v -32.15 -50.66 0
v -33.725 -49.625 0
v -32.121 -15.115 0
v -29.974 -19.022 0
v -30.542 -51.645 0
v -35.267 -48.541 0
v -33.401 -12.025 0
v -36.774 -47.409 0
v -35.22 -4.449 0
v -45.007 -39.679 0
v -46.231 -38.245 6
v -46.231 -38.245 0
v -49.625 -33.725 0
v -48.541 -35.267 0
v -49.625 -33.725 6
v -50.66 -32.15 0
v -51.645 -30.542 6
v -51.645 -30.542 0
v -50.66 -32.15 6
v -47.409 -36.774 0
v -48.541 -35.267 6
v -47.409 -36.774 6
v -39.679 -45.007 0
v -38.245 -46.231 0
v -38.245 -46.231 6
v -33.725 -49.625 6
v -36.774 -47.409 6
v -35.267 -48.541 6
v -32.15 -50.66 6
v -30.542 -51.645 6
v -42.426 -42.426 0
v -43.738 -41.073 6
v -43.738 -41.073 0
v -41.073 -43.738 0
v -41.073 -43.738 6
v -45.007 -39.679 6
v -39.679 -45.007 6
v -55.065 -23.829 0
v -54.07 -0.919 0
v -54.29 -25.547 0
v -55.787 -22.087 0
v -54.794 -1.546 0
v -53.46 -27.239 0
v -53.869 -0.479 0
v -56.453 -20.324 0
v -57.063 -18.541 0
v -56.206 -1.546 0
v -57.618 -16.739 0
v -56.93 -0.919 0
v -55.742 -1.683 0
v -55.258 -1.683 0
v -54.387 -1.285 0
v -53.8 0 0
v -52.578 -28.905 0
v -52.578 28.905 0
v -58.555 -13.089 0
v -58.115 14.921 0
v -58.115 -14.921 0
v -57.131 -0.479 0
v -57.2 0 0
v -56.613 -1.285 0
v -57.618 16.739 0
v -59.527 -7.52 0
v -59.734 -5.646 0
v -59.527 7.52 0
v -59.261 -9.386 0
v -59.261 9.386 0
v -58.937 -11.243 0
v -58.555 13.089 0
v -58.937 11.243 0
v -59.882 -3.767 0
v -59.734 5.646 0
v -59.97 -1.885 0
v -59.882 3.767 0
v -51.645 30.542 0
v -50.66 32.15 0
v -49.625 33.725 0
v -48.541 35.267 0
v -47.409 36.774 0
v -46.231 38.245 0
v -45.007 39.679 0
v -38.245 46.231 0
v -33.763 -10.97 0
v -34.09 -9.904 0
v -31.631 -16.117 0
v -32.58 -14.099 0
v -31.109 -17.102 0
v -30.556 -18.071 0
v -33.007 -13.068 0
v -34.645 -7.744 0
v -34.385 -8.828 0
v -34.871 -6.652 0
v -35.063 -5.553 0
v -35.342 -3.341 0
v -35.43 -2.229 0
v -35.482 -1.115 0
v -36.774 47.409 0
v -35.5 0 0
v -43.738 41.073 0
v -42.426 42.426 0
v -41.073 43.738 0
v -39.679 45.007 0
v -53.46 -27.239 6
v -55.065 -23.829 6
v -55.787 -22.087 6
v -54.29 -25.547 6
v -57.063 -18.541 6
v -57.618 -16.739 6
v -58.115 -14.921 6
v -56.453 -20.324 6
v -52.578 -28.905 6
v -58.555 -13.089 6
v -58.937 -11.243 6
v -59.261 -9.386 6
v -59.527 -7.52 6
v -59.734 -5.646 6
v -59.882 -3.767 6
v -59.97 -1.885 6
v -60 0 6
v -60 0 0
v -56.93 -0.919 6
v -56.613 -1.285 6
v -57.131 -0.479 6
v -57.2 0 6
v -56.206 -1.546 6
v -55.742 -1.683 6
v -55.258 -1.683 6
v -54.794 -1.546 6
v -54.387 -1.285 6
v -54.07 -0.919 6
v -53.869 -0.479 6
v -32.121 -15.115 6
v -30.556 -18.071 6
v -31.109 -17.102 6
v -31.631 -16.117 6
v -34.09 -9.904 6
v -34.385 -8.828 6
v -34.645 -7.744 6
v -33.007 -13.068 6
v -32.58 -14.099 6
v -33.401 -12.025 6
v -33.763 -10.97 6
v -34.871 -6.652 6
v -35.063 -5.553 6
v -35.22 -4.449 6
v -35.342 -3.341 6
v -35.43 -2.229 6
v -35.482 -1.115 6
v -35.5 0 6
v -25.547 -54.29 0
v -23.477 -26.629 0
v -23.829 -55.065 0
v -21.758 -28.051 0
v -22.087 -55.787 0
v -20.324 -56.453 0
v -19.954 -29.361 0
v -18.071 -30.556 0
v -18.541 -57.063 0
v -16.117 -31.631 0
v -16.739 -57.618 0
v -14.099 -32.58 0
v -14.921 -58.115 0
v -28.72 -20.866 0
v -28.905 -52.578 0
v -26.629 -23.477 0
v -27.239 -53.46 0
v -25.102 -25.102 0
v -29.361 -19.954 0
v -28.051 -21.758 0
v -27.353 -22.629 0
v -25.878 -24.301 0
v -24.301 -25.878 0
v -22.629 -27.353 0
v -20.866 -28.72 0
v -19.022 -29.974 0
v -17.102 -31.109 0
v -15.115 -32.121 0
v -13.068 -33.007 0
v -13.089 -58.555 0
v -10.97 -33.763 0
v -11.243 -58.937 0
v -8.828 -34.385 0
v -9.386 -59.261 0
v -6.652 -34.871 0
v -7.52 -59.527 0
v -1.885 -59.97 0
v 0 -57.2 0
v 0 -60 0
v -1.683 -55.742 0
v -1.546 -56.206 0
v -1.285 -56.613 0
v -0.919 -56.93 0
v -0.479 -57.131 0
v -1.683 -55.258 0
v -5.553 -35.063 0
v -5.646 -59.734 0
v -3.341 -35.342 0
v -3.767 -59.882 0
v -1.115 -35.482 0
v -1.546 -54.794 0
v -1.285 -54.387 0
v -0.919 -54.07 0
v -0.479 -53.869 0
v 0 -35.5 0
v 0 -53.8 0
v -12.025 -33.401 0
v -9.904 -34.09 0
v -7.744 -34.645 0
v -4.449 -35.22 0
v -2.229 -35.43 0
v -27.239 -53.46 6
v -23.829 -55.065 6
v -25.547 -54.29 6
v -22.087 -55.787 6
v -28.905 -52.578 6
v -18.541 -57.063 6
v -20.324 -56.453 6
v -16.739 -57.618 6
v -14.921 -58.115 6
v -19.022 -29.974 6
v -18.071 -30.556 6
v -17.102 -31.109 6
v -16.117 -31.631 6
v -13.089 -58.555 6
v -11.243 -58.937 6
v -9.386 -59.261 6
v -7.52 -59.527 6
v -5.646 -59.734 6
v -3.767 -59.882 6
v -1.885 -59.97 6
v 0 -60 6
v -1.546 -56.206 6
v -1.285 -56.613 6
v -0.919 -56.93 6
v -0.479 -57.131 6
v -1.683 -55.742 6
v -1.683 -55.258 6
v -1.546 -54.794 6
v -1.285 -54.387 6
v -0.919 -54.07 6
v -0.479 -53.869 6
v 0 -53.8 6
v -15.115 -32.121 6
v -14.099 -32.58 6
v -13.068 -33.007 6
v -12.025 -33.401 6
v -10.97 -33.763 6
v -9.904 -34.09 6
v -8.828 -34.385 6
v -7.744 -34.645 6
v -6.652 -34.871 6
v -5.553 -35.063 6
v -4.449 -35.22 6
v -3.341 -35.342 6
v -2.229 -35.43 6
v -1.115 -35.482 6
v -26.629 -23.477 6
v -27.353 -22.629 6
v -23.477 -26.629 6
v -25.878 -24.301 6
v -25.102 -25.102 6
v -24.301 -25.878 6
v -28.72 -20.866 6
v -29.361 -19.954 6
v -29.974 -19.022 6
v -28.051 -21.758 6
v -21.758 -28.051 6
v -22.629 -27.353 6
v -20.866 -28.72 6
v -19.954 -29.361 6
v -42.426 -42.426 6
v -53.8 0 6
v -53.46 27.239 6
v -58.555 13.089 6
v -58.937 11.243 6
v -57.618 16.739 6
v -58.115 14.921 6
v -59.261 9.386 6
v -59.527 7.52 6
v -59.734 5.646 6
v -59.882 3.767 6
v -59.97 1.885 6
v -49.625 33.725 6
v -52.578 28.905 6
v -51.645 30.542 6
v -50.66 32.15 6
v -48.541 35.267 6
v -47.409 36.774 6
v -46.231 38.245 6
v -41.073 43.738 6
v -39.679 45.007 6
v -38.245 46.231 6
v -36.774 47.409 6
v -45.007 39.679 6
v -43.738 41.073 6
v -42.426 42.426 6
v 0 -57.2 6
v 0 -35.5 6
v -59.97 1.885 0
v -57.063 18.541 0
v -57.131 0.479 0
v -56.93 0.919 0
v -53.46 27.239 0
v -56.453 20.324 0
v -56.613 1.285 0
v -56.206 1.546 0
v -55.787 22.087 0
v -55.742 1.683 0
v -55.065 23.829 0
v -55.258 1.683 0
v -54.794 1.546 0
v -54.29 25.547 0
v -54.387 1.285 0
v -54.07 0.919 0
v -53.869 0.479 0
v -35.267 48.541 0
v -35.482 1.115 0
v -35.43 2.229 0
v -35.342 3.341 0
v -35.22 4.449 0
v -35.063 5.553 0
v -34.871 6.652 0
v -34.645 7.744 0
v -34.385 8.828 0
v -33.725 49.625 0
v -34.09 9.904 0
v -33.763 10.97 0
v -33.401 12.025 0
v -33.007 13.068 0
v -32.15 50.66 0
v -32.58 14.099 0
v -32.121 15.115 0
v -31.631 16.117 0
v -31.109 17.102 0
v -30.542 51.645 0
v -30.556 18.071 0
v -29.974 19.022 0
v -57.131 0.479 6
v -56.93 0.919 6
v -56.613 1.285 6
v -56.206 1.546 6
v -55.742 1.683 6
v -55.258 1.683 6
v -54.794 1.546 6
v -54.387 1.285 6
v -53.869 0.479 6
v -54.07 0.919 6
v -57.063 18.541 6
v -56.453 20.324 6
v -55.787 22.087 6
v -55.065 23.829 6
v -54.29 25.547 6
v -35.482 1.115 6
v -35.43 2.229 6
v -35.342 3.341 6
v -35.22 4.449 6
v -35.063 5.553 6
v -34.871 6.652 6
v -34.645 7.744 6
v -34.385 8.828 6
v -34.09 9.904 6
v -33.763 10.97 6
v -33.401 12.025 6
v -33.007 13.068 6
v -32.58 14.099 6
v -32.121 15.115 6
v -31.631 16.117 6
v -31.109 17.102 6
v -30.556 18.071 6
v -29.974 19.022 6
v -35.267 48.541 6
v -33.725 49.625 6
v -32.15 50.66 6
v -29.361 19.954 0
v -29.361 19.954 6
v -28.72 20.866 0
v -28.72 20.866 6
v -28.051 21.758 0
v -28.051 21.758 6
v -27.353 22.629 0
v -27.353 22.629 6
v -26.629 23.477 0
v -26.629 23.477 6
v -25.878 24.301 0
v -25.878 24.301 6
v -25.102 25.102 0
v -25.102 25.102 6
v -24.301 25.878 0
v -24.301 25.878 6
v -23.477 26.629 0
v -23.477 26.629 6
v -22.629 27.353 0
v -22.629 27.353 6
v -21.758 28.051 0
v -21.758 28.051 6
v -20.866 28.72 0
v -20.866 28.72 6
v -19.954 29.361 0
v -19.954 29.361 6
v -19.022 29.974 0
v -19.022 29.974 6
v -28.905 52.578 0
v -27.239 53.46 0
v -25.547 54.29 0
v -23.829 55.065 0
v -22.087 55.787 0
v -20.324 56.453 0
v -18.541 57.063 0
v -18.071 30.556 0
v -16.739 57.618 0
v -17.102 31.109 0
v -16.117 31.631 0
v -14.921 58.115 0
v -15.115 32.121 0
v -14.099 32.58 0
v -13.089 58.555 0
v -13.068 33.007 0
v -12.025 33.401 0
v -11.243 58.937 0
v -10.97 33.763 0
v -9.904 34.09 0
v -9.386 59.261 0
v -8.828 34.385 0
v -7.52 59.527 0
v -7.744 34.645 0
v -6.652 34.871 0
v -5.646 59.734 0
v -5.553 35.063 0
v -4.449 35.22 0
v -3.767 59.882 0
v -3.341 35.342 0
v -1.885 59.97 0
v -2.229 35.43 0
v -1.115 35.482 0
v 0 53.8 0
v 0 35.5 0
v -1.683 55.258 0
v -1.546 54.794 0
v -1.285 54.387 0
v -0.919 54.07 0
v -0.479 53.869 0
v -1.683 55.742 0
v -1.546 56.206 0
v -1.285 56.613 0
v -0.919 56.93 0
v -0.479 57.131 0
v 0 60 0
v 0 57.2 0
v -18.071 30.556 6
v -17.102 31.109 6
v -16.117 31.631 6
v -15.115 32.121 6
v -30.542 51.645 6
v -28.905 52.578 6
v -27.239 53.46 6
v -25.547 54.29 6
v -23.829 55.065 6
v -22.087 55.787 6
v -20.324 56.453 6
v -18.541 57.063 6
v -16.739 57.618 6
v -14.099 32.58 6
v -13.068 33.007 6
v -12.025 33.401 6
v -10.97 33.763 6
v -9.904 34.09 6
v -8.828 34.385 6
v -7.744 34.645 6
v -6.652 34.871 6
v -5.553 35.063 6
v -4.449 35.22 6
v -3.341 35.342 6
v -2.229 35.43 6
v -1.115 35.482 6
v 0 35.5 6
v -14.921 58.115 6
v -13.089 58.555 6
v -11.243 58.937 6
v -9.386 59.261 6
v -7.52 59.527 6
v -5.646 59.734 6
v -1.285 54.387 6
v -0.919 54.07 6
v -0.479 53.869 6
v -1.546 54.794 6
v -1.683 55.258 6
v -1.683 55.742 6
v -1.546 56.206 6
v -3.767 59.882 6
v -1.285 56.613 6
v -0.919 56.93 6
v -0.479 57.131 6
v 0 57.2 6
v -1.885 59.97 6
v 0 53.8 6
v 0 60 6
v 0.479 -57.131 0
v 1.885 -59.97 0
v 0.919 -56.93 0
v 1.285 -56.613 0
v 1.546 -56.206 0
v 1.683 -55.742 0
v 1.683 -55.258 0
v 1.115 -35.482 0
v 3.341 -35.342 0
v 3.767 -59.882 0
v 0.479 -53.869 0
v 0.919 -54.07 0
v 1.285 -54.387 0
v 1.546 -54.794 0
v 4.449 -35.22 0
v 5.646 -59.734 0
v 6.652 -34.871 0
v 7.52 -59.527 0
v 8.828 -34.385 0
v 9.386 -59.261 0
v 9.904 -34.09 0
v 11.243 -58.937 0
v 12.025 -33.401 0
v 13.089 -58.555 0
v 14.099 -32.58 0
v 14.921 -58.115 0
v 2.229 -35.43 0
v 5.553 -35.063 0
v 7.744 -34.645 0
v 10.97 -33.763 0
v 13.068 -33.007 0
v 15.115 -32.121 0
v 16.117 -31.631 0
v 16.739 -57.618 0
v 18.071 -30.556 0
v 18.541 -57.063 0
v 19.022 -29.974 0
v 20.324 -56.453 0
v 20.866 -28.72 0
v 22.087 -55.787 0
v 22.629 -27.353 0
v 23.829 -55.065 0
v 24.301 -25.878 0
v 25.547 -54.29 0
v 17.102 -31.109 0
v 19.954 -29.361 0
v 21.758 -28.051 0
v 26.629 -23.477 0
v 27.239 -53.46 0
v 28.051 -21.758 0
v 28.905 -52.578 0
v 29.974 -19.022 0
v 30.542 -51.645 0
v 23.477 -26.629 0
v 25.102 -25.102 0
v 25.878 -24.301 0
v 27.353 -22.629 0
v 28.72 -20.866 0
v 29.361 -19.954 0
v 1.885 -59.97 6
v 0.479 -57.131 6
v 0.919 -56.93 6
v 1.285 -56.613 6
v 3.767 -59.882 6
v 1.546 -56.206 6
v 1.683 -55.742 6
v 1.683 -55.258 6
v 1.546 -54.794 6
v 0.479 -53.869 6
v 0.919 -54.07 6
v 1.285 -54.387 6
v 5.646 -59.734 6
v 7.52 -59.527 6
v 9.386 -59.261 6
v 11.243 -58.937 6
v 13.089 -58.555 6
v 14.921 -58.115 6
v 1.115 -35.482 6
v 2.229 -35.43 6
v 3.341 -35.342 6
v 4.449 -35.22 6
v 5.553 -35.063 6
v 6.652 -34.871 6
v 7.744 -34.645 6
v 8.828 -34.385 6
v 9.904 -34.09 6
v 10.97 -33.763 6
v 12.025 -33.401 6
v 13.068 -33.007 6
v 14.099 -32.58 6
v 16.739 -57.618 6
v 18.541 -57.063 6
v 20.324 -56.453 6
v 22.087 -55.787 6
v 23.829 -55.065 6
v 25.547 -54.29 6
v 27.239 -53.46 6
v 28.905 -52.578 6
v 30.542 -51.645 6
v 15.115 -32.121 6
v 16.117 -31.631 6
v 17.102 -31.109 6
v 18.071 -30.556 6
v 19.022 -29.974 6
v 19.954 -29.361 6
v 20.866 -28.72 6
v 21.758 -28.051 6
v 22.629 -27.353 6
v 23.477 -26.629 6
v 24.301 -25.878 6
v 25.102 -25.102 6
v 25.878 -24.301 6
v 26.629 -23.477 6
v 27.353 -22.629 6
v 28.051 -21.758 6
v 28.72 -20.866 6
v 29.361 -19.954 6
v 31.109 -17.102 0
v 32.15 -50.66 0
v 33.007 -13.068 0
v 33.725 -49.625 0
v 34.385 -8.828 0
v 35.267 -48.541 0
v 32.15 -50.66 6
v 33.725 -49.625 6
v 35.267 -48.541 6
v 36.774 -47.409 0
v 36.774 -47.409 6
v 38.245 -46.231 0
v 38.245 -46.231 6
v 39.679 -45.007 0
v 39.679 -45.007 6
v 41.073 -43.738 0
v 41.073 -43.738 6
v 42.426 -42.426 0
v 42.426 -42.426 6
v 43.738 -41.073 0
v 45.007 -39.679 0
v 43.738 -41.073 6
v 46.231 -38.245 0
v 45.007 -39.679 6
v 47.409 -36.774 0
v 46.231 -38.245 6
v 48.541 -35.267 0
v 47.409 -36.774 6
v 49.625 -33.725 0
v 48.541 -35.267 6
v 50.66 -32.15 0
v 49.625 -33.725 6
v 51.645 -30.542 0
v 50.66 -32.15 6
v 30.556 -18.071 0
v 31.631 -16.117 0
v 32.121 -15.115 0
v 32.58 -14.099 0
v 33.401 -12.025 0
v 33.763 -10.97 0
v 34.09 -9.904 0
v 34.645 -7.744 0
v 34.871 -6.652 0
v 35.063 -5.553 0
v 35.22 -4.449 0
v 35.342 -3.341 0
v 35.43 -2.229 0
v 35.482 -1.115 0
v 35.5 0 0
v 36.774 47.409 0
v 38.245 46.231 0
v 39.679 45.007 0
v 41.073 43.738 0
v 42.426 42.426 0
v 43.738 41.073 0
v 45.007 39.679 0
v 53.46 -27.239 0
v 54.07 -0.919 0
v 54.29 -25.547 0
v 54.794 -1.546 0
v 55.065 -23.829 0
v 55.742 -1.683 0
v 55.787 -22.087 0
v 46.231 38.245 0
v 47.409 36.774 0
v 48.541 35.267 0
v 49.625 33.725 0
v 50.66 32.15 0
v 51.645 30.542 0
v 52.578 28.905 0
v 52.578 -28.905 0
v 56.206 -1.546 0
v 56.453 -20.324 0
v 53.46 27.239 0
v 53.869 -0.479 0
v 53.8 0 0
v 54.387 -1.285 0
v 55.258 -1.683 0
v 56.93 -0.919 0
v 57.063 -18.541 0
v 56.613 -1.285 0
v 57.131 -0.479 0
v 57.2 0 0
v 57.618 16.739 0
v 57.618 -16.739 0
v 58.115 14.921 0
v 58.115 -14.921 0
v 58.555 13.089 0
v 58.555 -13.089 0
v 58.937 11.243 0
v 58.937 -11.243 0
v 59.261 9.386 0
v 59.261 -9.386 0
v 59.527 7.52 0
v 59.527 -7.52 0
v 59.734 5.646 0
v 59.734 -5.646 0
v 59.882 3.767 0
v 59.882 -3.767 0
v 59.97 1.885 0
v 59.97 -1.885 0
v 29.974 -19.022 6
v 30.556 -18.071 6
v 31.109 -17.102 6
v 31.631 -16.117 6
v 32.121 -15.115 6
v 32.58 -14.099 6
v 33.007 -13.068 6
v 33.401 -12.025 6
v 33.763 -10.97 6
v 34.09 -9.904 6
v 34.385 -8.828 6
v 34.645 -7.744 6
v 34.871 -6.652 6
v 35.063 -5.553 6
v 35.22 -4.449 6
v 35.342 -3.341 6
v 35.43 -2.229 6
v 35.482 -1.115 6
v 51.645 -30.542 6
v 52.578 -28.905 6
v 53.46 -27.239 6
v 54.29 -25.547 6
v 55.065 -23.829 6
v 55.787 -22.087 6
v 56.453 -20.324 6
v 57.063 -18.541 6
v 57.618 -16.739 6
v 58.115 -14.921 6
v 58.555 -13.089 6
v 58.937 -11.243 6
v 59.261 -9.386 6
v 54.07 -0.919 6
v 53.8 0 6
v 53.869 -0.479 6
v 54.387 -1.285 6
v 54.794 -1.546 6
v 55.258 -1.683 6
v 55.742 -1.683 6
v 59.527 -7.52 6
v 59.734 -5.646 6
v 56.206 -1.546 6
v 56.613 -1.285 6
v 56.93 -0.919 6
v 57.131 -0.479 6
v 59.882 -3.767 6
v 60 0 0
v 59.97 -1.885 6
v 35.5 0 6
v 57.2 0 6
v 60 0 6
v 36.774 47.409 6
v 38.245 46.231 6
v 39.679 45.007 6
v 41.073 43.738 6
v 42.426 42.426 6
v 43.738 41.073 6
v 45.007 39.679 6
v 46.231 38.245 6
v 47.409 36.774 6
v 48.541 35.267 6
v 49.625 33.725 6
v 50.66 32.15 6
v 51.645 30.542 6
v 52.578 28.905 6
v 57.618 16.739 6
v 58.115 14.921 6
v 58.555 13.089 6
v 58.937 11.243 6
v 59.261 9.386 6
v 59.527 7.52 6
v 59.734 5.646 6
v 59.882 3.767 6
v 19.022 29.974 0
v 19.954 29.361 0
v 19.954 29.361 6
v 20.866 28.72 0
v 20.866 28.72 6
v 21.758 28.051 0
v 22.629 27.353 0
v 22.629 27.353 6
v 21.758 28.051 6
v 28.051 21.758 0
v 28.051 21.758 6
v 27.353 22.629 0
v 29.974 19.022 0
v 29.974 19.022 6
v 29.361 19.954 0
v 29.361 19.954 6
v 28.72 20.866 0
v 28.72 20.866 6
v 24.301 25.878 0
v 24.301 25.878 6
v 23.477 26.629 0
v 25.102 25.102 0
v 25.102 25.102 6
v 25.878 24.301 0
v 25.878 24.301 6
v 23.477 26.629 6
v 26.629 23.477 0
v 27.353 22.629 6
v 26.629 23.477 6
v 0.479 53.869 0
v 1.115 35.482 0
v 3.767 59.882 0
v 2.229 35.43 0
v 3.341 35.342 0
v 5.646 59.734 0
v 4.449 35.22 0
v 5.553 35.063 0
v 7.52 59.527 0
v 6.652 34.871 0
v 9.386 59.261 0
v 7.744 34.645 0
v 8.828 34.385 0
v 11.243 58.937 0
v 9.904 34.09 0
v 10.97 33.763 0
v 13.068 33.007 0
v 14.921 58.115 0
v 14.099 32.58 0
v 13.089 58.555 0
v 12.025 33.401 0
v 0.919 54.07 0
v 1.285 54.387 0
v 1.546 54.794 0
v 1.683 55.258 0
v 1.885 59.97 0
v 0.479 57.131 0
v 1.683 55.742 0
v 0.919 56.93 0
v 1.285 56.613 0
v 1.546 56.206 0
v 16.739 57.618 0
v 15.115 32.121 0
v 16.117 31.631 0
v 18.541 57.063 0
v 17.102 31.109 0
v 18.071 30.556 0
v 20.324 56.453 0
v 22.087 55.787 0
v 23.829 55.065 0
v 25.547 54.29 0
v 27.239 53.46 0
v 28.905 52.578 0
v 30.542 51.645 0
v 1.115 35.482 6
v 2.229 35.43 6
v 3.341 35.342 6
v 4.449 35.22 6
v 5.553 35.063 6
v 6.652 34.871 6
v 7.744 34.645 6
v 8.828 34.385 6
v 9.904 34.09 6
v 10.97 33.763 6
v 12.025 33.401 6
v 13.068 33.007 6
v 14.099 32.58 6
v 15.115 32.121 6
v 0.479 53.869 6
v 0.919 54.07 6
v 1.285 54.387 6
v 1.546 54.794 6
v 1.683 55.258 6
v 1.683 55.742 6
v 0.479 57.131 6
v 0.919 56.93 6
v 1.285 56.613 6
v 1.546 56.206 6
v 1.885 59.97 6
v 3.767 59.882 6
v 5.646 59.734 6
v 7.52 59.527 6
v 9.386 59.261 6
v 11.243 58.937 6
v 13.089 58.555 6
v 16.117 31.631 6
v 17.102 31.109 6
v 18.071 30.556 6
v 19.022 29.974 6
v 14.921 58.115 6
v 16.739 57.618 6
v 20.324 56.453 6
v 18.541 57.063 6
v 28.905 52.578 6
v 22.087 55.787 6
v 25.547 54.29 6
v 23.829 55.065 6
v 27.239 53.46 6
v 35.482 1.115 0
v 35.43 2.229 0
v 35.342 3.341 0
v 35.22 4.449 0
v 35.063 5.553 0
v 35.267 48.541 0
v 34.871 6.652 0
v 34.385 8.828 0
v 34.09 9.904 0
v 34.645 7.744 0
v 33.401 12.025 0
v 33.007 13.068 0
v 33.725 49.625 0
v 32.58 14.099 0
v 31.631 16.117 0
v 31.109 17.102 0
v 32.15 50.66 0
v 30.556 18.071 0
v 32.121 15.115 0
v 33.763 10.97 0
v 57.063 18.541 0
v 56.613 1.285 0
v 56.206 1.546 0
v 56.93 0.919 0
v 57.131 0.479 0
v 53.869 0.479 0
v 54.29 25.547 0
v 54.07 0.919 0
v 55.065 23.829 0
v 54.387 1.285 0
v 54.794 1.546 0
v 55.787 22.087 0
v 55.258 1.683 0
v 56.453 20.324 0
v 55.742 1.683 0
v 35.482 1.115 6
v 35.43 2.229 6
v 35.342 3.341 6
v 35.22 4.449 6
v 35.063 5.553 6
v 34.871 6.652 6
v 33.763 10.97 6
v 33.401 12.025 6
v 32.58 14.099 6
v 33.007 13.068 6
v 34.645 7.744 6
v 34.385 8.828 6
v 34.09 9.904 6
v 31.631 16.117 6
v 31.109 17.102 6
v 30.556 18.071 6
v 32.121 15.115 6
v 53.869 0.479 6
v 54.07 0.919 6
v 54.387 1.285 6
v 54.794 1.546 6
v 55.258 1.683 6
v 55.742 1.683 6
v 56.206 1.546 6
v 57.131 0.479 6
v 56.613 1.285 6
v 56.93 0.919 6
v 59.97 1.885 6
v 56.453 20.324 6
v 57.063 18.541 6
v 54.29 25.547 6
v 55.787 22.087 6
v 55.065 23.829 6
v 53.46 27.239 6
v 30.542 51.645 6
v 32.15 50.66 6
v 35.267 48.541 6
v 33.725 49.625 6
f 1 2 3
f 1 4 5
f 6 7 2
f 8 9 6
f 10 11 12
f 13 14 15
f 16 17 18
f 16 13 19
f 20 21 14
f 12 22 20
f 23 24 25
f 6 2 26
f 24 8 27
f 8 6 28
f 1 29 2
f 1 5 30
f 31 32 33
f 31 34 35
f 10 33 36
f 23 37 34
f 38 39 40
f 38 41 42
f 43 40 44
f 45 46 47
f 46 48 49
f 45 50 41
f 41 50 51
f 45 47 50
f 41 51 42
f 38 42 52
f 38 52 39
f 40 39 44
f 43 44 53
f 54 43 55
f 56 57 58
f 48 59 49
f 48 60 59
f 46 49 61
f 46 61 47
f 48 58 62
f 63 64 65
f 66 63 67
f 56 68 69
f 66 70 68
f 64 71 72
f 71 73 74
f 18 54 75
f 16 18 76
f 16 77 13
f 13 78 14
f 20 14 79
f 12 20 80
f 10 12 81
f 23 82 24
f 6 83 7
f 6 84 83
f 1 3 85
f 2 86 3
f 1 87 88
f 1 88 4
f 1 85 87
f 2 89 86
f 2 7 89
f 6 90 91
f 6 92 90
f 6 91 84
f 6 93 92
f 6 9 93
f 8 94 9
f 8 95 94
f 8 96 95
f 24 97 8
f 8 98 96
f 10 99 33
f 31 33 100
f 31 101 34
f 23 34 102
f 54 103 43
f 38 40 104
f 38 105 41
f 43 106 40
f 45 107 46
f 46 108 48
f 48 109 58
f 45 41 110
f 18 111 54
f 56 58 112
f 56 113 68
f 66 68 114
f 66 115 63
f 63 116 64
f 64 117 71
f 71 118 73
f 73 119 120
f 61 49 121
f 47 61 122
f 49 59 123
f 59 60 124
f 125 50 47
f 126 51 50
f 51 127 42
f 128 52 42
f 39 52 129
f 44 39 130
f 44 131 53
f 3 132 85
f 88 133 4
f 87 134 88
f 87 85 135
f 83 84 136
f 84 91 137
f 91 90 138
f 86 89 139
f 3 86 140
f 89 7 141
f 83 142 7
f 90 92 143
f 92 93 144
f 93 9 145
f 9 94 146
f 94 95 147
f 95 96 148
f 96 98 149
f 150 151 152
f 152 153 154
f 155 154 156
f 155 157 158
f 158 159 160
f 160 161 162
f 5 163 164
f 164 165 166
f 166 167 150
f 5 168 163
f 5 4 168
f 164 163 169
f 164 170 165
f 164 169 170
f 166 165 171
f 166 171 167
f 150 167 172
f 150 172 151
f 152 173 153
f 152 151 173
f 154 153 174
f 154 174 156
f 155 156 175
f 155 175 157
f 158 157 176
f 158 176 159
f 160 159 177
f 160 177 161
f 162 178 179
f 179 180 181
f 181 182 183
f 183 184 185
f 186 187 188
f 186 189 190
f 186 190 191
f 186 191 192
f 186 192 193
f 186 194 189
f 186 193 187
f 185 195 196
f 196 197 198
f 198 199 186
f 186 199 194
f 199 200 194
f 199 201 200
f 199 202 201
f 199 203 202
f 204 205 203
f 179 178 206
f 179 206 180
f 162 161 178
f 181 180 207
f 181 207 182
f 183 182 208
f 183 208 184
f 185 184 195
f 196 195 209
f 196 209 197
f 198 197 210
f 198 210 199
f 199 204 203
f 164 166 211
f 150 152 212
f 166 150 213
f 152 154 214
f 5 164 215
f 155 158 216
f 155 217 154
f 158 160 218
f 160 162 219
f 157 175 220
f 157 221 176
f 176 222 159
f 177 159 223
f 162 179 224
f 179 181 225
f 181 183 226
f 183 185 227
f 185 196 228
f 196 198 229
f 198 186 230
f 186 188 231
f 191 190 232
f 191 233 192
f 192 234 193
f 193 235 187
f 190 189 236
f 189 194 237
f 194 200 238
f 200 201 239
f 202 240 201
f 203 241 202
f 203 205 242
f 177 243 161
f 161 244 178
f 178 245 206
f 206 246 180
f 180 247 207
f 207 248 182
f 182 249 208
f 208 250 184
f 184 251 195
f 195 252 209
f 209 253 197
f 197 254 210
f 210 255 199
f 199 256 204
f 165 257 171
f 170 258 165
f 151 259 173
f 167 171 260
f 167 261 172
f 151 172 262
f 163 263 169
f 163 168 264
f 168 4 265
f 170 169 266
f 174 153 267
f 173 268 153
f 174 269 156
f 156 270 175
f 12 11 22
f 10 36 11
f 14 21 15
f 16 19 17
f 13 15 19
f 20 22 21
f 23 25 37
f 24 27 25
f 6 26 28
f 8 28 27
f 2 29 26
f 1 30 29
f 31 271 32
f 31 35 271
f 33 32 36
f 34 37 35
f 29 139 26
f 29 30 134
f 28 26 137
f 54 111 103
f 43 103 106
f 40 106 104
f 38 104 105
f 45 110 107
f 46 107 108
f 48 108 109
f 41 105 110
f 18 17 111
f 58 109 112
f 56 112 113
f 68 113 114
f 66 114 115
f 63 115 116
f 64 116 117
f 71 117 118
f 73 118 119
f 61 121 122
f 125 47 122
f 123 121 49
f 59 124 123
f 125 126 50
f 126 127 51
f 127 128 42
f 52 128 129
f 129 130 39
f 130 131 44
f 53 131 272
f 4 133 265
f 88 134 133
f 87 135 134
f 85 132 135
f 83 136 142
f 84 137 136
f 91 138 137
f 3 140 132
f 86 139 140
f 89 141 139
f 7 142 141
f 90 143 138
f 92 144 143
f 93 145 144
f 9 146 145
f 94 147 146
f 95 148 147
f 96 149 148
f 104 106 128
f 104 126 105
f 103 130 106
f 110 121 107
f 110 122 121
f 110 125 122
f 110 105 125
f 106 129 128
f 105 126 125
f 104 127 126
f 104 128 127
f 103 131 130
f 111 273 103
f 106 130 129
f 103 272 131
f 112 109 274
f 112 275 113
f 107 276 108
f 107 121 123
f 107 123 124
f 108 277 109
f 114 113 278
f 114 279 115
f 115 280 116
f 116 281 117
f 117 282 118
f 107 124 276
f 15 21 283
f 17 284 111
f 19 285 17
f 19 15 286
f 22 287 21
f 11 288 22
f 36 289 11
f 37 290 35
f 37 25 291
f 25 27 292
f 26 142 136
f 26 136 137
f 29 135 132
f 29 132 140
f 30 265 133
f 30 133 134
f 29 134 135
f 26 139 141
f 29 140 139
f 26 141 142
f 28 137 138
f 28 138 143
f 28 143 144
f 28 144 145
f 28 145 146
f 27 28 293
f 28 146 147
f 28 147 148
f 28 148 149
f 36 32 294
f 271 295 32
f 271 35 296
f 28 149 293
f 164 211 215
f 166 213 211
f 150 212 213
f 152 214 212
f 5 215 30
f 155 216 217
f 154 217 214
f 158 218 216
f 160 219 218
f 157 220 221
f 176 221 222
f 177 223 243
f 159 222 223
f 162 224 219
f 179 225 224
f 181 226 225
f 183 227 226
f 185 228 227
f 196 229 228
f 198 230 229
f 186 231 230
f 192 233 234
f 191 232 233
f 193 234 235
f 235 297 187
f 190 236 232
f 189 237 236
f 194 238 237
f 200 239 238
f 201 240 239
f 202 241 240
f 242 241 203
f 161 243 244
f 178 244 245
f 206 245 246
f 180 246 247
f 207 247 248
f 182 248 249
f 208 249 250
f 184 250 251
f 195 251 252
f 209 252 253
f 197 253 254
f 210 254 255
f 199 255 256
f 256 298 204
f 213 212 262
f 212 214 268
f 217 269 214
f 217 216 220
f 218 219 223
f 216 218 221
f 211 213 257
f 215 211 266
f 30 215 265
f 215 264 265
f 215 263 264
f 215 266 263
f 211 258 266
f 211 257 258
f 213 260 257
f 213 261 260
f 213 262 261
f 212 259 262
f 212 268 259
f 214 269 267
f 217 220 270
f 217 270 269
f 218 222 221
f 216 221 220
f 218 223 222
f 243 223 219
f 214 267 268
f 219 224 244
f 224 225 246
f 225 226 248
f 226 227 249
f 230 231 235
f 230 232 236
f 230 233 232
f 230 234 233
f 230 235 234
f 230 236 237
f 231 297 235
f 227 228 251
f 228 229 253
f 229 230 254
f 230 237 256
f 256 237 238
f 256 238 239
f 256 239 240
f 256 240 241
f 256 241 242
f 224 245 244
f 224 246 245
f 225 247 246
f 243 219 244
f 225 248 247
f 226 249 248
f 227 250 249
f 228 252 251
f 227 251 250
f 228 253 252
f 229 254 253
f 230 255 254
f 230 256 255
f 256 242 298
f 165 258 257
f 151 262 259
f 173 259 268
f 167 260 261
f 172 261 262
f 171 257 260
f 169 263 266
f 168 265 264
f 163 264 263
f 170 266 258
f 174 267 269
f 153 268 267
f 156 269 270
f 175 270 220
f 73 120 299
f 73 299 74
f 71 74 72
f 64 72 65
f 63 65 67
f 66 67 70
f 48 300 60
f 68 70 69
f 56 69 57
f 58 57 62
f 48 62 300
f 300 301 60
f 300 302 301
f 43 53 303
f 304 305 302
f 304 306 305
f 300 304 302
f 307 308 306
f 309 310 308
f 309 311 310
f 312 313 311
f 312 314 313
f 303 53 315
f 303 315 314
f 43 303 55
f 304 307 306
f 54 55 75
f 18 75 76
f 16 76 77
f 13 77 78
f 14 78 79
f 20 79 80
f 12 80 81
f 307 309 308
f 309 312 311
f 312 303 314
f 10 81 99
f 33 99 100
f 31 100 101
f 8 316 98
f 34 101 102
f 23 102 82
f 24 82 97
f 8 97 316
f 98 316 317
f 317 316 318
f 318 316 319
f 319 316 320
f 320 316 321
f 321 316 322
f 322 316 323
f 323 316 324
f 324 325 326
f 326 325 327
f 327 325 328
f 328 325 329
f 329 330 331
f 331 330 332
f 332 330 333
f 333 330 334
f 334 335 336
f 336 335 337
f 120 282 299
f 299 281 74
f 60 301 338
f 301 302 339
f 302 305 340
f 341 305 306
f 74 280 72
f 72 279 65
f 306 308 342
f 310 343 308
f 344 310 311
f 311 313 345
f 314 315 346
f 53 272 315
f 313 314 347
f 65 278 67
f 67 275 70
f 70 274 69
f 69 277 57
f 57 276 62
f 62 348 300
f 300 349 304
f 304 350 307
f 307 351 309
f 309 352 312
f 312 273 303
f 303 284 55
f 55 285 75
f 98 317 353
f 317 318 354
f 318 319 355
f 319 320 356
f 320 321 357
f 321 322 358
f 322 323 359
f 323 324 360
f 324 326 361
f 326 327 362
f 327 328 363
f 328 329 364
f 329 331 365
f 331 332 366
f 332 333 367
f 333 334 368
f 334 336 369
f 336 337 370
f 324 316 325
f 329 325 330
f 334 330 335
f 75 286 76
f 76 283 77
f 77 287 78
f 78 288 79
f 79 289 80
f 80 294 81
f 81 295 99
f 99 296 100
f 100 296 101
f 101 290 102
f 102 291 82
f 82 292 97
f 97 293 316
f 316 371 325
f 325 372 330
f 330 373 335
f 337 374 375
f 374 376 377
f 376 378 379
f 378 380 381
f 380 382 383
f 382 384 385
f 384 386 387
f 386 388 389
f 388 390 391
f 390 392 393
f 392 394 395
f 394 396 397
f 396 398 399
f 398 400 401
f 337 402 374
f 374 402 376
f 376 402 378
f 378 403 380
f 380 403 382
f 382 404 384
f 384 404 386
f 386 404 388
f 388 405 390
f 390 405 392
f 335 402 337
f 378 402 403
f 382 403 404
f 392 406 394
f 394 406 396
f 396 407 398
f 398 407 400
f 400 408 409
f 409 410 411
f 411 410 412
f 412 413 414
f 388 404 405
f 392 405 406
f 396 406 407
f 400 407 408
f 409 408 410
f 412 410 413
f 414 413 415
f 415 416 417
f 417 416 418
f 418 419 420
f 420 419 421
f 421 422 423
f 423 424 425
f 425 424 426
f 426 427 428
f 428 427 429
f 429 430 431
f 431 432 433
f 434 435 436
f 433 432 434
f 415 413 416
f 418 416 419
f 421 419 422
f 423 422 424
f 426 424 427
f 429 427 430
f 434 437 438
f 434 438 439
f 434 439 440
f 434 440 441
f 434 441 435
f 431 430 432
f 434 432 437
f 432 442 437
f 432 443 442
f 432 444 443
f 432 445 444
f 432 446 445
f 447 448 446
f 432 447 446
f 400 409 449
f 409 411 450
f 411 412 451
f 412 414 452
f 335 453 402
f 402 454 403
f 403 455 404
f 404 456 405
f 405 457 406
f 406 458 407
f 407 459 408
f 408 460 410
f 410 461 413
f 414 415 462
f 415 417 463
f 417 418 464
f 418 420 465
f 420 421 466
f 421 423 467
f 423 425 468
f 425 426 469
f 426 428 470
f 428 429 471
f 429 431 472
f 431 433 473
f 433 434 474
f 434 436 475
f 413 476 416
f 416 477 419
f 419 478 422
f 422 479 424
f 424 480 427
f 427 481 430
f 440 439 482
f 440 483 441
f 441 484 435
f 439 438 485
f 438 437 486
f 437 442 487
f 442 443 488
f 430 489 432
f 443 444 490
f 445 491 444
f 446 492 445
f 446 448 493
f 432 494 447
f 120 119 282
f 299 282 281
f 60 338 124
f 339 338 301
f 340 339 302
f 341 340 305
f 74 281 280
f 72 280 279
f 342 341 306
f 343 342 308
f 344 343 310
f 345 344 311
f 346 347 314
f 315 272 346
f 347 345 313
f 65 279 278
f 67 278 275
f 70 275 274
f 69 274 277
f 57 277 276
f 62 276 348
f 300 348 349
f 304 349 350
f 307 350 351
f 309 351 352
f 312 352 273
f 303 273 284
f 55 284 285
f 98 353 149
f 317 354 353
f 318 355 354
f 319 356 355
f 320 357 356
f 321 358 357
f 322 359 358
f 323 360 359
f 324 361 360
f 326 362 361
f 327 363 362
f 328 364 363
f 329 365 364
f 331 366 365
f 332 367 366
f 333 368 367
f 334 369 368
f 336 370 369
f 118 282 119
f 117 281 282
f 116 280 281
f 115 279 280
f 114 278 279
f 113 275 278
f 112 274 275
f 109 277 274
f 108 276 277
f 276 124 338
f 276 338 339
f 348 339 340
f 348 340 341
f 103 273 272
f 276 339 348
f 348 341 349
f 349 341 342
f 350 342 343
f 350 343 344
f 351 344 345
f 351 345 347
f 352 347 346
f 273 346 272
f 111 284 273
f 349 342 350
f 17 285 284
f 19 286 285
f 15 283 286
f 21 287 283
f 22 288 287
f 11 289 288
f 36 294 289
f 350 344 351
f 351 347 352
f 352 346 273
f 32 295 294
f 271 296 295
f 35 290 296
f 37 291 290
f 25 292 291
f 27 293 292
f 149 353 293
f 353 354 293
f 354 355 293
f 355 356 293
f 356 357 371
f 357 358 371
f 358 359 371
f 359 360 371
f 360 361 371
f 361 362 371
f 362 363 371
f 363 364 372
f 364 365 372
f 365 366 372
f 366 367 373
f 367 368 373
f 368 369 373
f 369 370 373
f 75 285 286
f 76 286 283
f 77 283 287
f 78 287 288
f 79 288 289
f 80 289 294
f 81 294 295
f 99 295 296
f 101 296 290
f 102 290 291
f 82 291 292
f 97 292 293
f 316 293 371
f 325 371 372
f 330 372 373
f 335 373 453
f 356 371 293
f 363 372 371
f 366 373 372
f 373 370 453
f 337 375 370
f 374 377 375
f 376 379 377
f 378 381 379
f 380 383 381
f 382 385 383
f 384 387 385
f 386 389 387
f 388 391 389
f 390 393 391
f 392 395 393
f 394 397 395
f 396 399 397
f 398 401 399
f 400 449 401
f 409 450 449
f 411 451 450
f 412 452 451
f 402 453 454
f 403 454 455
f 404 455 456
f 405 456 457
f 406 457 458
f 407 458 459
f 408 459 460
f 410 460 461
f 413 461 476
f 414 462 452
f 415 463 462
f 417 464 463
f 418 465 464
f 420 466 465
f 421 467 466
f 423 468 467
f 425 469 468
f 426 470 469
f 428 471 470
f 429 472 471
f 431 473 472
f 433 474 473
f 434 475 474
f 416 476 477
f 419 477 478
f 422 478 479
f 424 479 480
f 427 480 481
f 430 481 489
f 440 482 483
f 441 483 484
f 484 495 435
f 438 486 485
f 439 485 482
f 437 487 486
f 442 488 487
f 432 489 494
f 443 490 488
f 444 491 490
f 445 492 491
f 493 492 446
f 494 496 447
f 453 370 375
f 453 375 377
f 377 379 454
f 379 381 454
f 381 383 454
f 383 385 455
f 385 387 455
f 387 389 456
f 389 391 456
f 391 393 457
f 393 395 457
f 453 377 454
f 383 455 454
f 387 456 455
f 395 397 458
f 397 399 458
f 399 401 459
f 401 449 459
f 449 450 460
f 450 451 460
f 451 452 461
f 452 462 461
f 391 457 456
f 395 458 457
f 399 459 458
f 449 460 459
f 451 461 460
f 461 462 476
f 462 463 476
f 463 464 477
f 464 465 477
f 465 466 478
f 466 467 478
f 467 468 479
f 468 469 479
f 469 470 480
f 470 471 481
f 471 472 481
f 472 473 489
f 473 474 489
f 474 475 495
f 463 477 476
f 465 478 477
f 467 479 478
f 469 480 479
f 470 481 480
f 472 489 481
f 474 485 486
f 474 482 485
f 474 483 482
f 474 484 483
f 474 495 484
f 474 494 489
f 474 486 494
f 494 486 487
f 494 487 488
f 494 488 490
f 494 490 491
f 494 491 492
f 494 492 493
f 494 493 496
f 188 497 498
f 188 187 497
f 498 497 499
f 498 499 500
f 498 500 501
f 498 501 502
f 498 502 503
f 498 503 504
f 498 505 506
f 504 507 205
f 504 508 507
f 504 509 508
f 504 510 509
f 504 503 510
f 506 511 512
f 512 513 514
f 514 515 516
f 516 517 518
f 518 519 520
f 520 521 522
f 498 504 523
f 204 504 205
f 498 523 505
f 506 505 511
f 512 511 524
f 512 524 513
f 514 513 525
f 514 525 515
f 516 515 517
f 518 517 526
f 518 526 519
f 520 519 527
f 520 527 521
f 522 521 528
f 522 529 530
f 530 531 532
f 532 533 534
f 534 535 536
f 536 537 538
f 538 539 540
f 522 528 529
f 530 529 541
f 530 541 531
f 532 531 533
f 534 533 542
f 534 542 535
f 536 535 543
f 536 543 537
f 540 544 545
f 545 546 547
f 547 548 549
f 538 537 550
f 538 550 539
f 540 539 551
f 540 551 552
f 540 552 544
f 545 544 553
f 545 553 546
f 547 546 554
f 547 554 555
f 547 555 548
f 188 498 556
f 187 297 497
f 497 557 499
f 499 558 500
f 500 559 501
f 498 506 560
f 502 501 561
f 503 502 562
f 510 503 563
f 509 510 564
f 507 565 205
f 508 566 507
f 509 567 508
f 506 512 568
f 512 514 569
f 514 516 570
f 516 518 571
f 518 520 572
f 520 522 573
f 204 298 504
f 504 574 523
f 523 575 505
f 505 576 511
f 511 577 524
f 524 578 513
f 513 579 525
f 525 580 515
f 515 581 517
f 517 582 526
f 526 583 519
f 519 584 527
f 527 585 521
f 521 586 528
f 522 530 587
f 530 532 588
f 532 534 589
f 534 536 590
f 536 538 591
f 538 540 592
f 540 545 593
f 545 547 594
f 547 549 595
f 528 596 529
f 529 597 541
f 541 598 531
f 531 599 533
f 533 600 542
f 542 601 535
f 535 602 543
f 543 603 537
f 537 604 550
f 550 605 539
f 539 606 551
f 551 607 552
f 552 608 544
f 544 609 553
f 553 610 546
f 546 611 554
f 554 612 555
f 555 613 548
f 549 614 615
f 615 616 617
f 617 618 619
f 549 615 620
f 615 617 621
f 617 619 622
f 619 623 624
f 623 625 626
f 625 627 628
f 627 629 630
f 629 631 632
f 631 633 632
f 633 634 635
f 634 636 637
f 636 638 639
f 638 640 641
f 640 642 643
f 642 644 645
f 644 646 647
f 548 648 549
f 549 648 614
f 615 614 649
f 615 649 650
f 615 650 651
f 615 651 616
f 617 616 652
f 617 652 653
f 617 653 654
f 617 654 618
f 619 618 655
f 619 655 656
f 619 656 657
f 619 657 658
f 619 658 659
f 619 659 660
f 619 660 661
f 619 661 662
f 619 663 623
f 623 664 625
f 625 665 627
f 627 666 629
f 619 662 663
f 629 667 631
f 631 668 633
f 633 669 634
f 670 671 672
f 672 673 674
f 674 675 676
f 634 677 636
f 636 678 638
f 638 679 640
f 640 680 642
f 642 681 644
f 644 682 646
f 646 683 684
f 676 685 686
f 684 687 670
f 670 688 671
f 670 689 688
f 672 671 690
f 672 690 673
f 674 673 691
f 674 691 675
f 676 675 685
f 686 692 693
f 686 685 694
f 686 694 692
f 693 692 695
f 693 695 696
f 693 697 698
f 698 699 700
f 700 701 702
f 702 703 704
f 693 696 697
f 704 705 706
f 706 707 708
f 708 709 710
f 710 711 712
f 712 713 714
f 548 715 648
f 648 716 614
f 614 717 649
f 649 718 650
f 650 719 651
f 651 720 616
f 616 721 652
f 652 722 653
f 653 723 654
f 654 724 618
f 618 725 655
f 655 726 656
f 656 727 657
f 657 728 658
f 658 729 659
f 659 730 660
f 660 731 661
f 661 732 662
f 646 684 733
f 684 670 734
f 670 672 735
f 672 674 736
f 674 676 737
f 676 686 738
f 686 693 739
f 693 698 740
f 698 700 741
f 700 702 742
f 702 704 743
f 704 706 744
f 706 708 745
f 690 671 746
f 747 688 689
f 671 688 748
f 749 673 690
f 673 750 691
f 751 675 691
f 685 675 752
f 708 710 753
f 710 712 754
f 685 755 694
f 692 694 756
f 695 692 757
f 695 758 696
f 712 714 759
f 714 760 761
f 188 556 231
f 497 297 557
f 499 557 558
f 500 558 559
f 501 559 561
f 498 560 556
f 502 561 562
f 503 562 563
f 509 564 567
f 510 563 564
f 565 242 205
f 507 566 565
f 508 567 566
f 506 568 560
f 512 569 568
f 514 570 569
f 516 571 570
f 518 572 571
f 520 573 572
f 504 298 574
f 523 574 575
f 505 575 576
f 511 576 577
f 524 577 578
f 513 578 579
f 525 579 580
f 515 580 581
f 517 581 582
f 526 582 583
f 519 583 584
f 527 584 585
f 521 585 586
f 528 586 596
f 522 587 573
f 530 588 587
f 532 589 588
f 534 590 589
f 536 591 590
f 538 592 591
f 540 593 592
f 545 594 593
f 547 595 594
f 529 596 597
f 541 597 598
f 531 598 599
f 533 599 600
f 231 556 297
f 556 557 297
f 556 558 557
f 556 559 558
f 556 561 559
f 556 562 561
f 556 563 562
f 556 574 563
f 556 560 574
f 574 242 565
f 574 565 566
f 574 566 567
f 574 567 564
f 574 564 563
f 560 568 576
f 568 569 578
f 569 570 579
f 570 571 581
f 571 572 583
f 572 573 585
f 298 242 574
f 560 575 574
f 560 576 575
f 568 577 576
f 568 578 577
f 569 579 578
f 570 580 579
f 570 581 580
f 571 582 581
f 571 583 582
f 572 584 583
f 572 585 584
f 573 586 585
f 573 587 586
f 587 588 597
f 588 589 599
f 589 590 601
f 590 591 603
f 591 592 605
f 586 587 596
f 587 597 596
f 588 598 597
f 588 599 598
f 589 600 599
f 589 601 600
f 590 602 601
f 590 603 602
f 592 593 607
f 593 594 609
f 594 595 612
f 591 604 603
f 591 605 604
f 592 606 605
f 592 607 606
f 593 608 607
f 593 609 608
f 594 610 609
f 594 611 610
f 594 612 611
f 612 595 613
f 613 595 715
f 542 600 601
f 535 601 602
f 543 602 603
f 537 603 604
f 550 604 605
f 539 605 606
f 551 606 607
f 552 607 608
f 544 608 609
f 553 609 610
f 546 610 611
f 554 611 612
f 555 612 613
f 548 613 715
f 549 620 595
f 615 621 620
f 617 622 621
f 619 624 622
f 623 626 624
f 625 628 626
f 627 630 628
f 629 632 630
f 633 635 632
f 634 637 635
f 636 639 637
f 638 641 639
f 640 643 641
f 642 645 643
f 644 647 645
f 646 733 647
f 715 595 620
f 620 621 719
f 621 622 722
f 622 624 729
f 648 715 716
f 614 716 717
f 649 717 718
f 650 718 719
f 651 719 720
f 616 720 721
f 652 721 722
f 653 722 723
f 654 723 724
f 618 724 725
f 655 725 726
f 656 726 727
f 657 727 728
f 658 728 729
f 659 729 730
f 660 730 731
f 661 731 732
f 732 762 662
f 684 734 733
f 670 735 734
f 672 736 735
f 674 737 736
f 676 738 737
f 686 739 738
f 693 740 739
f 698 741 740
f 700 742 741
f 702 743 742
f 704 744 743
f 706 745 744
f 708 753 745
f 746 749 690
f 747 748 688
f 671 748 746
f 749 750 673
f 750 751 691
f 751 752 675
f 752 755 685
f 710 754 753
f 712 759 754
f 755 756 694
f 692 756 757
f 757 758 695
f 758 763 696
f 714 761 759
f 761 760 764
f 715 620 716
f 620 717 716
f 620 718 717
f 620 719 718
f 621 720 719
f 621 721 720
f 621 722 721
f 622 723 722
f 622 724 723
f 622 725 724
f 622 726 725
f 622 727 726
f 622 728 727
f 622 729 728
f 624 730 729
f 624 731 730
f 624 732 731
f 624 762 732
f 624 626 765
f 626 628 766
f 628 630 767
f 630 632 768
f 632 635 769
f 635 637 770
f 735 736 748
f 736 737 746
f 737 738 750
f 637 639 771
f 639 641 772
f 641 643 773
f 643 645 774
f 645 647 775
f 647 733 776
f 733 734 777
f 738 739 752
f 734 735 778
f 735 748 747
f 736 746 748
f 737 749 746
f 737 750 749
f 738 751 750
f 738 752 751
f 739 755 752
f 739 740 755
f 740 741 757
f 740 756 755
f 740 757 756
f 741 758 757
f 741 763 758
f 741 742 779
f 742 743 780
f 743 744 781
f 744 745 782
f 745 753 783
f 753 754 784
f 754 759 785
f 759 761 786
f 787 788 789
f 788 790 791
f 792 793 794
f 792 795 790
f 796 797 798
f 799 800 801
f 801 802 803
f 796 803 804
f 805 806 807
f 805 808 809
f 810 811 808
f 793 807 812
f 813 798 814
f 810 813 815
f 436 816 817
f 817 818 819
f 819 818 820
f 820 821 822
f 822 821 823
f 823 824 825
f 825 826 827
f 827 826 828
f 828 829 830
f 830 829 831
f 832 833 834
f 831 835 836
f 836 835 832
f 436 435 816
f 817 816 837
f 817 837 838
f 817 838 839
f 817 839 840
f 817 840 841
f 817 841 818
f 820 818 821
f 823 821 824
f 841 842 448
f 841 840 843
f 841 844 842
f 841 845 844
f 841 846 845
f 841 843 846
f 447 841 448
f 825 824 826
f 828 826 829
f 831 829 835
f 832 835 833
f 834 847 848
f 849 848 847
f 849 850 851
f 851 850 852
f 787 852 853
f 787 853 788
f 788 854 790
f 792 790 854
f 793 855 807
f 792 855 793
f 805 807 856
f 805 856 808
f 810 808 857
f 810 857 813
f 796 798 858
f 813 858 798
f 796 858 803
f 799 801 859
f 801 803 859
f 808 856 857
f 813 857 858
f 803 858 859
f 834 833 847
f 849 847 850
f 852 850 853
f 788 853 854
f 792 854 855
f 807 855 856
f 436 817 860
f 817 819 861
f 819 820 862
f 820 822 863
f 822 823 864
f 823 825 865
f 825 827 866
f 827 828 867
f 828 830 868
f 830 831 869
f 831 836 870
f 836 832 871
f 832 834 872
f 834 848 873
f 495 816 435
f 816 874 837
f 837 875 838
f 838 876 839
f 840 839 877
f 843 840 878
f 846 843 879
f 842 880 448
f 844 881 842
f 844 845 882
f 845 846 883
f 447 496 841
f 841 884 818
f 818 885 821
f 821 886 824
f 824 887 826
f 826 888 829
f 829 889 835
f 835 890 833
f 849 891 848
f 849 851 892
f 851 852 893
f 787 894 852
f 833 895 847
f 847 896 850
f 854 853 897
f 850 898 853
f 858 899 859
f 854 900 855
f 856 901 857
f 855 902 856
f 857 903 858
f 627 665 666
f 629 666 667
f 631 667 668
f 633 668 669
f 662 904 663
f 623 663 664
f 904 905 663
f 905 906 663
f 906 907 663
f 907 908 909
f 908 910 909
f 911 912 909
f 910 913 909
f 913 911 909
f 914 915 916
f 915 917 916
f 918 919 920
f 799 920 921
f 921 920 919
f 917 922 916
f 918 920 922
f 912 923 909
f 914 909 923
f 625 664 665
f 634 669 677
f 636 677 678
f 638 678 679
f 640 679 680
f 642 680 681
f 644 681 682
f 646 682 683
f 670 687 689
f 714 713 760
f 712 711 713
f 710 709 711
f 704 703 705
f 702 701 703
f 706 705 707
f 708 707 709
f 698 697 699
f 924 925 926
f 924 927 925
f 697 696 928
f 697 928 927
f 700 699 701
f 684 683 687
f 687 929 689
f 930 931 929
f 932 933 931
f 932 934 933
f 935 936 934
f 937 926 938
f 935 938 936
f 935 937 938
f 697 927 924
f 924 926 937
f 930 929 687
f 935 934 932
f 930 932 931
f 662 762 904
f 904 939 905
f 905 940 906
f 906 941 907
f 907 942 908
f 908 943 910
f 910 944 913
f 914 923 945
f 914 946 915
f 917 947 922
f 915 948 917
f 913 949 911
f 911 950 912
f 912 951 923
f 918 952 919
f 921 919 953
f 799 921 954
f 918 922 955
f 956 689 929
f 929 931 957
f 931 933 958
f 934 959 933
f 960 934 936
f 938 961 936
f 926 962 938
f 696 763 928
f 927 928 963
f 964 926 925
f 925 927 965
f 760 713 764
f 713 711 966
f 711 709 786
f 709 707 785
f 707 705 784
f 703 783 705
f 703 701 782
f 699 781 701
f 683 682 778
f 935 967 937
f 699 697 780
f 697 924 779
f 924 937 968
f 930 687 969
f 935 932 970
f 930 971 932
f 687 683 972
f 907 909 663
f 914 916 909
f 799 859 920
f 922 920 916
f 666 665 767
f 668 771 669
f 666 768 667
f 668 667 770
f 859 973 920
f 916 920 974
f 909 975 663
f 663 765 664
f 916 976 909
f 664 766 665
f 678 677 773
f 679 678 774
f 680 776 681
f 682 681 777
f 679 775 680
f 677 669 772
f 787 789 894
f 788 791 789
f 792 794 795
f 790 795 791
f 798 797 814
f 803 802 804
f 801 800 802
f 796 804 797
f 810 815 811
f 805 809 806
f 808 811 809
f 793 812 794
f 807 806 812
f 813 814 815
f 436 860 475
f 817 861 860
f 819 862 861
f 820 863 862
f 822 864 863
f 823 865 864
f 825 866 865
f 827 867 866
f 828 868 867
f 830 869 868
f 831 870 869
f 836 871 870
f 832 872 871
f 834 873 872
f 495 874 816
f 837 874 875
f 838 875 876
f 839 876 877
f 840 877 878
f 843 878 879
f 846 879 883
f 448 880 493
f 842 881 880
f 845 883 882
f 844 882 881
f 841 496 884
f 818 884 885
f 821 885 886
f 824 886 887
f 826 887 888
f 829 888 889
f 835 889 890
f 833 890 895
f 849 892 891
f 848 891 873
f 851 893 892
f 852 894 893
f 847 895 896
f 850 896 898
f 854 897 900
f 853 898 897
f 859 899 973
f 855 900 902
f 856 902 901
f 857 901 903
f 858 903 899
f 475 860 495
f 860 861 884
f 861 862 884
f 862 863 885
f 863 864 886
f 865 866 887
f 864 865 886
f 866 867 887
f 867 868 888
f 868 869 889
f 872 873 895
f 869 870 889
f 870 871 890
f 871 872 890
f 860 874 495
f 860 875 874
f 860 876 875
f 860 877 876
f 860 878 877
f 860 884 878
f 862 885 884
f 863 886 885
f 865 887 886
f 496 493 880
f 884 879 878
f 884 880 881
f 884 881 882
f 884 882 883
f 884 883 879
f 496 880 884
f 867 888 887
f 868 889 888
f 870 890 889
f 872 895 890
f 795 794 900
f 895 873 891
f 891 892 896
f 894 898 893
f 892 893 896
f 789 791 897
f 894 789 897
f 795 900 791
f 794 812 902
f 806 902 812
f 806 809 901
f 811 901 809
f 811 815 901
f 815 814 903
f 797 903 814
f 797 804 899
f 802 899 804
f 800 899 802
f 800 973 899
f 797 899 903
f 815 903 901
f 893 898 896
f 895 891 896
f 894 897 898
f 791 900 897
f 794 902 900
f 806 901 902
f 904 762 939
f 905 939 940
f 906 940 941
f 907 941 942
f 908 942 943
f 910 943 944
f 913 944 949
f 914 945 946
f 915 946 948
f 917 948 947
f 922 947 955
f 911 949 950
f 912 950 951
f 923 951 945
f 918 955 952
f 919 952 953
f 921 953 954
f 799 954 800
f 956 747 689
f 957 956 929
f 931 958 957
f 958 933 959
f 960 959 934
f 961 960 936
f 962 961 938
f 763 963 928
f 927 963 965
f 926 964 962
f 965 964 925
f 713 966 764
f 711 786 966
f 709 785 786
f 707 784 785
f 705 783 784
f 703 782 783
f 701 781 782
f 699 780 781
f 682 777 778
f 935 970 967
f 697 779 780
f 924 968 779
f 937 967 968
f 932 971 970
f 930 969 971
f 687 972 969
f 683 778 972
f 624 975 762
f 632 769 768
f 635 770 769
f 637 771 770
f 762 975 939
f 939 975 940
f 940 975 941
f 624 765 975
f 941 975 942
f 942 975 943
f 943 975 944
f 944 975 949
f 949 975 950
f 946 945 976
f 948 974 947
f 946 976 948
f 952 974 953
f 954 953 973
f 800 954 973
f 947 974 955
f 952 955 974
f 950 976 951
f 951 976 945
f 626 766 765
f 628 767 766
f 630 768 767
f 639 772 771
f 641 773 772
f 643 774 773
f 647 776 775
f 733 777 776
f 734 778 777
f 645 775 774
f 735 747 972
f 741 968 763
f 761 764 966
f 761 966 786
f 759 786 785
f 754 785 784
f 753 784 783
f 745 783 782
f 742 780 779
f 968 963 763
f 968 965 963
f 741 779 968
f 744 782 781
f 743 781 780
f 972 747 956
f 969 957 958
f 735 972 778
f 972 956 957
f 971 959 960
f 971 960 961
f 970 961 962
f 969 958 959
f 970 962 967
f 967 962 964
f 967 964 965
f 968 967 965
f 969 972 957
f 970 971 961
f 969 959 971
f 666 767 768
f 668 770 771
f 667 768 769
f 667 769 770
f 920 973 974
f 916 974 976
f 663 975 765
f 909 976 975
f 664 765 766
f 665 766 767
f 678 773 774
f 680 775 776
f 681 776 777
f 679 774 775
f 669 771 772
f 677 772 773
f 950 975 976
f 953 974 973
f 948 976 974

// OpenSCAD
// file: lib/lib.scad
// Shared helpers. Include AFTER params.scad (needs TOL, M3_* etc.).
$fa = 4; $fs = 0.5;

module rrect(size, r) {            // 2D rounded rectangle, centred
    r2 = min(r, min(size[0], size[1]) / 2 - 0.001);
    offset(r = r2) square([size[0] - 2 * r2, size[1] - 2 * r2], center = true);
}
module rbox(size, r, center_xy = true) {   // box with rounded vertical edges
    translate(center_xy ? [0, 0, 0] : [size[0] / 2, size[1] / 2, 0])
        linear_extrude(size[2]) rrect([size[0], size[1]], r);
}
module rbox_at(x0, x1, y0, y1, z0, z1, r = 0.01) {
    translate([(x0 + x1) / 2, (y0 + y1) / 2, z0]) rbox([x1 - x0, y1 - y0, z1 - z0], r);
}
module box_at(x0, x1, y0, y1, z0, z1) { translate([x0, y0, z0]) cube([x1 - x0, y1 - y0, z1 - z0]); }

module ring(ro, ri, h) { difference() { cylinder(r = ro, h = h); translate([0, 0, -1]) cylinder(r = ri, h = h + 2); } }
module ring_sector(ro, ri, h, a0, a1) {
    intersection() {
        ring(ro, ri, h);
        linear_extrude(h) polygon(concat([[0, 0]], [for (a = [a0 : (a1 - a0) / 24 : a1]) 2 * ro * [cos(a), sin(a)]]));
    }
}
// teardrop hole along an axis lying horizontal (axis = Y after rotation), printable w/o support
module teardrop2d(d) { union() { circle(d = d); rotate(45) square(d / 2); } }
// vertical heat-set insert hole, opening at z=0 going +z (depth l)
module insert_hole(l = M3_INSERT_L) { translate([0, 0, -EPS]) cylinder(d = M3_INSERT_D, h = l + EPS); }
module m3_clear(l) { translate([0, 0, -EPS]) cylinder(d = M3_CLEAR, h = l + 2 * EPS); }
module m3_csk(l) {  // countersunk clearance from z=0 upward, head at z=0 side
    translate([0, 0, -EPS]) { cylinder(d = M3_CLEAR, h = l + 2 * EPS); cylinder(d1 = 6.4, d2 = M3_CLEAR, h = 1.7); }
}
module card2d() { rrect([CARD_L, CARD_W], CARD_R); }
module card_at(cy, z) { translate([0, cy, z]) linear_extrude(CARD_T) card2d(); }

// ---- gears ----
function _inv(a) = tan(a) - a * PI_ / 180;           // involute function, a in deg
function _invpt(rb, r, ang0, s) = let(al = acos(rb / r), th = ang0 - s * (_inv(al) * 180 / PI_)) [r * cos(th), r * sin(th)];
module involute_gear2d(m, z, pa = 20, clearance = 0.05) {
    rp = m * z / 2; rb = rp * cos(pa); ra = rp + m - clearance; rf = rp - 1.25 * m;
    half = 90 / z + _inv(pa) * 180 / PI_;            // tooth half-angle at base (deg)
    n = 8;
    rs = [for (i = [0 : n]) max(rb, rf) + (ra - max(rb, rf)) * i / n];
    union() {
        circle(r = rf, $fn = z * 4);
        for (k = [0 : z - 1]) rotate(k * 360 / z) polygon(concat(
            [[rf * cos(-half), rf * sin(-half)]],
            [for (r = rs) let(p = _invpt(rb, r, half, 1)) [p[0], -p[1]]],
            [for (i = [n : -1 : 0]) _invpt(rb, rs[i], half, 1)],
            [[rf * cos(half), rf * sin(half)]]));
    }
}
// straight gear rack (2D in XY: teeth along +x, pointing -y, pitch line at y=0)
module gear_rack2d(m, len, back = 3) {
    p = PI_ * m; ad = m; de = 1.25 * m; t = tan(20);
    n = ceil(len / p) + 1;
    intersection() {
        union() {
            translate([0, de]) square([len, back]);
            for (i = [0 : n]) translate([i * p - p / 4, 0]) polygon([
                [-(p / 4 + de * t), de + 0.01], [p / 4 + de * t + 0.01, de + 0.01],
                [p / 4 - ad * t, -ad], [-(p / 4 - ad * t), -ad] ]);
        }
        translate([0, -ad - 1]) square([len, ad + de + back + 2]);
    }
}
// GT2 belt-tooth profile ring (teeth outward), 2D
module gt2_ring2d(n, r_land, ri) {
    union() {
        difference() { circle(r = r_land + 0.01, $fn = n * 2); circle(r = ri, $fn = n * 2); }
        for (k = [0 : n - 1]) rotate(k * 360 / n)
            translate([r_land, 0]) hull() { translate([-0.2, 0]) square([0.2, 1.0], center = true); translate([0.25, 0]) circle(r = 0.5, $fn = 12); }
    }
}
// main file
// Bearing spacer (D-19): 6 mm ring between deck and lazy susan. It raises the bearing ID space to
// ~15 mm for the 2-ribbon clock spring. The bearing screws pass through it into the deck.
// Print: flat, no supports.
include <params.scad>
include <lib/lib.scad>
module bearing_spacer() difference() {
    translate([0, 0, DECK_Z + DECK_T]) ring(LS_OD / 2, LS_ID / 2 + CLR, LS_SPACER, $fn = 200);
    for (a = [0 : 90 : 359]) rotate(a) translate([LS_OD / 2 - 4.5, 0, DECK_Z]) m3_clear(20);
}
module bearing_spacer_print() translate([0, 0, -DECK_Z - DECK_T]) bearing_spacer();
bearing_spacer_print();
